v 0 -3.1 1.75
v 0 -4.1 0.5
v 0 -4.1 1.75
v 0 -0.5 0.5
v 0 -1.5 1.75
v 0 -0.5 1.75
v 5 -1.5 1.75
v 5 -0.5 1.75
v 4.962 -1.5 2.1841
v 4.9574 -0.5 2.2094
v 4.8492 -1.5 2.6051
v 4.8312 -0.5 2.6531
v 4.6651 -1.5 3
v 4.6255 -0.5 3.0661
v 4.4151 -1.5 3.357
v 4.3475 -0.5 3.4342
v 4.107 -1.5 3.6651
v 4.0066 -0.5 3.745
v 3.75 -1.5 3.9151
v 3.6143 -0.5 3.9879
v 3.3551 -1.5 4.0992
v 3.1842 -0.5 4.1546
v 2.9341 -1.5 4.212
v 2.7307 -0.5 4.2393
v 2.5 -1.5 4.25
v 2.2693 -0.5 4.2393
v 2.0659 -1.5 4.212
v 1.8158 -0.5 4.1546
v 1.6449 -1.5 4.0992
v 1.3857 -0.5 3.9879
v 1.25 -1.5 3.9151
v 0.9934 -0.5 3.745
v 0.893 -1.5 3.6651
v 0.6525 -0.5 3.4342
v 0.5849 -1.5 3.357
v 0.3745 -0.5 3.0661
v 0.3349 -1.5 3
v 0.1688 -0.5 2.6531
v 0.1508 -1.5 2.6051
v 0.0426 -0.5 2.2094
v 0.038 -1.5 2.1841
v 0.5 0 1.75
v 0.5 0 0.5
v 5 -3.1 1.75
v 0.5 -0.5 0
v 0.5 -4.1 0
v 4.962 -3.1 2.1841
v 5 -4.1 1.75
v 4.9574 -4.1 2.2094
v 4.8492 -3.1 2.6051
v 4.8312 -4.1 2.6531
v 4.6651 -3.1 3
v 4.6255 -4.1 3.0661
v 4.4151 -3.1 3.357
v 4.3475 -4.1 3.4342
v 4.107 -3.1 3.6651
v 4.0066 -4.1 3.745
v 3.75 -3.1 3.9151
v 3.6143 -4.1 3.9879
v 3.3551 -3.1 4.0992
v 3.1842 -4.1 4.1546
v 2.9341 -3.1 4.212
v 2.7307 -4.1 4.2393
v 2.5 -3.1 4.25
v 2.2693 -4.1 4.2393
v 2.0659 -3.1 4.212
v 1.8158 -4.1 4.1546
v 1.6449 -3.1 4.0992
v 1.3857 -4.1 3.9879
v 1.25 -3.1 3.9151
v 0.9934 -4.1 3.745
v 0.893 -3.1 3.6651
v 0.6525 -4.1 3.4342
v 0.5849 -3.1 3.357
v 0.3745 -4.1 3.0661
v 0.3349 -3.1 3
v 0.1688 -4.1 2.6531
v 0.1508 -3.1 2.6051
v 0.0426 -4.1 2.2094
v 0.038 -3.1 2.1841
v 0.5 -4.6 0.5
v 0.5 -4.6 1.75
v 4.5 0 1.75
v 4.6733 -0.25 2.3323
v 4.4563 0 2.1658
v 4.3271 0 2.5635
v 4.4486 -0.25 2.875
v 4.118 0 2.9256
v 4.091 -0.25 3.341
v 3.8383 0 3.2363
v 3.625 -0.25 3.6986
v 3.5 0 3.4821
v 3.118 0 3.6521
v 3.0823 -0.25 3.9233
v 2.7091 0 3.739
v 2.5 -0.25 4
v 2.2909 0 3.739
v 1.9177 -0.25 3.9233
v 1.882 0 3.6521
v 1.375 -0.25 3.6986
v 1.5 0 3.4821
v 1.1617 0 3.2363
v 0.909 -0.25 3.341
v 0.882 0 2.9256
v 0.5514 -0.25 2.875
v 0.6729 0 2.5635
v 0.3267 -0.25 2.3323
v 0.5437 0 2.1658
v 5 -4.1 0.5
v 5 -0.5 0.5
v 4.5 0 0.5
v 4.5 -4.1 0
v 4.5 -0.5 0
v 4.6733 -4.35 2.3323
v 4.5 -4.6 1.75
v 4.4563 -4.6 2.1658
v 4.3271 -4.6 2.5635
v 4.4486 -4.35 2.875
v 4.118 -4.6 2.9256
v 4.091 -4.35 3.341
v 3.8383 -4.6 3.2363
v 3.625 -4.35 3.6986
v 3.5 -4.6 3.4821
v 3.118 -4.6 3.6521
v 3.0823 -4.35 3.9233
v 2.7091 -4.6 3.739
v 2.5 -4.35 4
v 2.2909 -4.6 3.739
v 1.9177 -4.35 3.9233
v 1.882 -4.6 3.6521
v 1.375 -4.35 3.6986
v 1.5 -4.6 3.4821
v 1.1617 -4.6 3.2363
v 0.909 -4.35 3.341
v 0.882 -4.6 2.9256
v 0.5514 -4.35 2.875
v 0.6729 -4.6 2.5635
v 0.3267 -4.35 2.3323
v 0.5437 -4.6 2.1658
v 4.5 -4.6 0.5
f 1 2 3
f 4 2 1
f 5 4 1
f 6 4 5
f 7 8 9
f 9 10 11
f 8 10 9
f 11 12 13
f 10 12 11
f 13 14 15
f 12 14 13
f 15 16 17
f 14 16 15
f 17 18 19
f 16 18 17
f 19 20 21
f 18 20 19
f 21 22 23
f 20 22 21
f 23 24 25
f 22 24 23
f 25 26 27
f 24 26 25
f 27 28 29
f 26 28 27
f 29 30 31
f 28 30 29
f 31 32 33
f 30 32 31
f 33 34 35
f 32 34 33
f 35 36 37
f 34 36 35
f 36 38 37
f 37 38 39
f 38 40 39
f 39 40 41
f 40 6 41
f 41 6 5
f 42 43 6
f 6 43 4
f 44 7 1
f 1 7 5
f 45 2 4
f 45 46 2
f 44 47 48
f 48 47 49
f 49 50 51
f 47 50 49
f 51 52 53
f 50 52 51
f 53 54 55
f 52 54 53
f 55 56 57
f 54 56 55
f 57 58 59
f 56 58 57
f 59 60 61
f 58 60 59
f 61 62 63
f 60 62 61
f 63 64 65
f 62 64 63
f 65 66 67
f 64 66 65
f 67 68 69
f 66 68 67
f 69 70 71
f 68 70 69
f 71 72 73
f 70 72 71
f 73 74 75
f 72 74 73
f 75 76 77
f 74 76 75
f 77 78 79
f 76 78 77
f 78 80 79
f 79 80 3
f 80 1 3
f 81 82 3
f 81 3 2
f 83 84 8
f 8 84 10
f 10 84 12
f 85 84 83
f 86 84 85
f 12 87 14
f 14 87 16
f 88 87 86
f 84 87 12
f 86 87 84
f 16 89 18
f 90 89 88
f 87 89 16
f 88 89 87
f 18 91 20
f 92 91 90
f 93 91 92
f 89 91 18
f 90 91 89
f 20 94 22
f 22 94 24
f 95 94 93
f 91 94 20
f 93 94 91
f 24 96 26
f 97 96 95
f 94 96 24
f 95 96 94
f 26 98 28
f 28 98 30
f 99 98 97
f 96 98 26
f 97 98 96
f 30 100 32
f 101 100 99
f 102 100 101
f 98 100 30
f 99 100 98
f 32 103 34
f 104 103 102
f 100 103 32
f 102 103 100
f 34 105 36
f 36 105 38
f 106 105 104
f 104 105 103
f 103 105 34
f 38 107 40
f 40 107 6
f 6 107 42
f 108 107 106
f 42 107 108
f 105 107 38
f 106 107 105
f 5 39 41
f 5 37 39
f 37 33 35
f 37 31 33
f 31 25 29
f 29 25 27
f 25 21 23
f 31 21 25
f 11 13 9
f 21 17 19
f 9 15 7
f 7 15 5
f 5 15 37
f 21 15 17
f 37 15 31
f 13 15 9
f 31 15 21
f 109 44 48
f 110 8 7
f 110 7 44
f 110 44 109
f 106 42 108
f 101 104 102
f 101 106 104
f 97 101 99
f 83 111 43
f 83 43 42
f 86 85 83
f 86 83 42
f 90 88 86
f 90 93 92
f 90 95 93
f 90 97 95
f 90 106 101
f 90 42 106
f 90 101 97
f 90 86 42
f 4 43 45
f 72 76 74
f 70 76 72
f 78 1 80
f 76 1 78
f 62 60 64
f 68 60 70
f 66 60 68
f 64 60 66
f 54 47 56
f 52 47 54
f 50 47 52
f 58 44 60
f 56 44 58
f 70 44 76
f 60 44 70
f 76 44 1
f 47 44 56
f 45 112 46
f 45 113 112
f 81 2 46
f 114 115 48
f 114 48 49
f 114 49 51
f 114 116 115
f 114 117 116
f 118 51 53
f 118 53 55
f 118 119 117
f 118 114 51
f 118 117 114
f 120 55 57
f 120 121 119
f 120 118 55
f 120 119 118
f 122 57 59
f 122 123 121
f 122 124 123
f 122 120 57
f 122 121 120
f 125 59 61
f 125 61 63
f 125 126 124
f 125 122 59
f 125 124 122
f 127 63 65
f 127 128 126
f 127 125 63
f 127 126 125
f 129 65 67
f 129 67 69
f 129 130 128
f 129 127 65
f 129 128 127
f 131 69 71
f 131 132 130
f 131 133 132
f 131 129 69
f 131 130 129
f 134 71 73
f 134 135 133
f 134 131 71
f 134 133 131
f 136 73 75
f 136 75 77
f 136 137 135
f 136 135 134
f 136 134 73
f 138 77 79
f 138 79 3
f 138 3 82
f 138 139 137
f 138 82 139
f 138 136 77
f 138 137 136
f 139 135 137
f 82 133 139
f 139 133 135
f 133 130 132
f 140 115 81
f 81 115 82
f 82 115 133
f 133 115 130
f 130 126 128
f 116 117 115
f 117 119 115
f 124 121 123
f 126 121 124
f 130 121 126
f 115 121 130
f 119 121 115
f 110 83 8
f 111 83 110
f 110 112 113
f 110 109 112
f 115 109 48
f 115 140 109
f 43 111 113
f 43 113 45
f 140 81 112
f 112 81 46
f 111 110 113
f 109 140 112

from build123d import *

# Parameters (mm, degrees)
PAD_DEPTH    = 4.6
SKETCH001_W  = 1.6
SKETCH001_H  = 2.5
POCKET_DEPTH = 5.001
CHAMFER_SIZE = 0.5


with BuildPart() as part:
    # Sketch (on XZ_Plane of Origin) → Pad (new body)
    with BuildSketch(Plane.XZ):
        with BuildLine():
            Line((0, 0), (0, 1.75))
            ThreePointArc((5, 1.75), (2.5, 4.25), (0, 1.75))
            Line((5, 1.75), (5, 0))
            Line((5, 0), (0, 0))
        make_face()
    extrude(amount=PAD_DEPTH)

    # Sketch001 (on Face3 of Pad) → Pocket (cut, through all)
    with BuildSketch(Plane.YZ.offset(5)):
        with Locations((-2.3, 3)):
            Rectangle(SKETCH001_W, SKETCH001_H)
    extrude(amount=-POCKET_DEPTH, mode=Mode.SUBTRACT)

    # Chamfer
    chamfer_edges = [part.edges().sort_by_distance(p)[0] for p in [
        (2.5, -4.6, 4.25),
        (2.5, -4.6, 0),
        (2.5, 0, 4.25),
        (5, -2.3, 0),
        (2.5, 0, 0),
        (0, -2.3, 0),
    ]]
    chamfer(chamfer_edges, length=CHAMFER_SIZE)


solid = part.part
